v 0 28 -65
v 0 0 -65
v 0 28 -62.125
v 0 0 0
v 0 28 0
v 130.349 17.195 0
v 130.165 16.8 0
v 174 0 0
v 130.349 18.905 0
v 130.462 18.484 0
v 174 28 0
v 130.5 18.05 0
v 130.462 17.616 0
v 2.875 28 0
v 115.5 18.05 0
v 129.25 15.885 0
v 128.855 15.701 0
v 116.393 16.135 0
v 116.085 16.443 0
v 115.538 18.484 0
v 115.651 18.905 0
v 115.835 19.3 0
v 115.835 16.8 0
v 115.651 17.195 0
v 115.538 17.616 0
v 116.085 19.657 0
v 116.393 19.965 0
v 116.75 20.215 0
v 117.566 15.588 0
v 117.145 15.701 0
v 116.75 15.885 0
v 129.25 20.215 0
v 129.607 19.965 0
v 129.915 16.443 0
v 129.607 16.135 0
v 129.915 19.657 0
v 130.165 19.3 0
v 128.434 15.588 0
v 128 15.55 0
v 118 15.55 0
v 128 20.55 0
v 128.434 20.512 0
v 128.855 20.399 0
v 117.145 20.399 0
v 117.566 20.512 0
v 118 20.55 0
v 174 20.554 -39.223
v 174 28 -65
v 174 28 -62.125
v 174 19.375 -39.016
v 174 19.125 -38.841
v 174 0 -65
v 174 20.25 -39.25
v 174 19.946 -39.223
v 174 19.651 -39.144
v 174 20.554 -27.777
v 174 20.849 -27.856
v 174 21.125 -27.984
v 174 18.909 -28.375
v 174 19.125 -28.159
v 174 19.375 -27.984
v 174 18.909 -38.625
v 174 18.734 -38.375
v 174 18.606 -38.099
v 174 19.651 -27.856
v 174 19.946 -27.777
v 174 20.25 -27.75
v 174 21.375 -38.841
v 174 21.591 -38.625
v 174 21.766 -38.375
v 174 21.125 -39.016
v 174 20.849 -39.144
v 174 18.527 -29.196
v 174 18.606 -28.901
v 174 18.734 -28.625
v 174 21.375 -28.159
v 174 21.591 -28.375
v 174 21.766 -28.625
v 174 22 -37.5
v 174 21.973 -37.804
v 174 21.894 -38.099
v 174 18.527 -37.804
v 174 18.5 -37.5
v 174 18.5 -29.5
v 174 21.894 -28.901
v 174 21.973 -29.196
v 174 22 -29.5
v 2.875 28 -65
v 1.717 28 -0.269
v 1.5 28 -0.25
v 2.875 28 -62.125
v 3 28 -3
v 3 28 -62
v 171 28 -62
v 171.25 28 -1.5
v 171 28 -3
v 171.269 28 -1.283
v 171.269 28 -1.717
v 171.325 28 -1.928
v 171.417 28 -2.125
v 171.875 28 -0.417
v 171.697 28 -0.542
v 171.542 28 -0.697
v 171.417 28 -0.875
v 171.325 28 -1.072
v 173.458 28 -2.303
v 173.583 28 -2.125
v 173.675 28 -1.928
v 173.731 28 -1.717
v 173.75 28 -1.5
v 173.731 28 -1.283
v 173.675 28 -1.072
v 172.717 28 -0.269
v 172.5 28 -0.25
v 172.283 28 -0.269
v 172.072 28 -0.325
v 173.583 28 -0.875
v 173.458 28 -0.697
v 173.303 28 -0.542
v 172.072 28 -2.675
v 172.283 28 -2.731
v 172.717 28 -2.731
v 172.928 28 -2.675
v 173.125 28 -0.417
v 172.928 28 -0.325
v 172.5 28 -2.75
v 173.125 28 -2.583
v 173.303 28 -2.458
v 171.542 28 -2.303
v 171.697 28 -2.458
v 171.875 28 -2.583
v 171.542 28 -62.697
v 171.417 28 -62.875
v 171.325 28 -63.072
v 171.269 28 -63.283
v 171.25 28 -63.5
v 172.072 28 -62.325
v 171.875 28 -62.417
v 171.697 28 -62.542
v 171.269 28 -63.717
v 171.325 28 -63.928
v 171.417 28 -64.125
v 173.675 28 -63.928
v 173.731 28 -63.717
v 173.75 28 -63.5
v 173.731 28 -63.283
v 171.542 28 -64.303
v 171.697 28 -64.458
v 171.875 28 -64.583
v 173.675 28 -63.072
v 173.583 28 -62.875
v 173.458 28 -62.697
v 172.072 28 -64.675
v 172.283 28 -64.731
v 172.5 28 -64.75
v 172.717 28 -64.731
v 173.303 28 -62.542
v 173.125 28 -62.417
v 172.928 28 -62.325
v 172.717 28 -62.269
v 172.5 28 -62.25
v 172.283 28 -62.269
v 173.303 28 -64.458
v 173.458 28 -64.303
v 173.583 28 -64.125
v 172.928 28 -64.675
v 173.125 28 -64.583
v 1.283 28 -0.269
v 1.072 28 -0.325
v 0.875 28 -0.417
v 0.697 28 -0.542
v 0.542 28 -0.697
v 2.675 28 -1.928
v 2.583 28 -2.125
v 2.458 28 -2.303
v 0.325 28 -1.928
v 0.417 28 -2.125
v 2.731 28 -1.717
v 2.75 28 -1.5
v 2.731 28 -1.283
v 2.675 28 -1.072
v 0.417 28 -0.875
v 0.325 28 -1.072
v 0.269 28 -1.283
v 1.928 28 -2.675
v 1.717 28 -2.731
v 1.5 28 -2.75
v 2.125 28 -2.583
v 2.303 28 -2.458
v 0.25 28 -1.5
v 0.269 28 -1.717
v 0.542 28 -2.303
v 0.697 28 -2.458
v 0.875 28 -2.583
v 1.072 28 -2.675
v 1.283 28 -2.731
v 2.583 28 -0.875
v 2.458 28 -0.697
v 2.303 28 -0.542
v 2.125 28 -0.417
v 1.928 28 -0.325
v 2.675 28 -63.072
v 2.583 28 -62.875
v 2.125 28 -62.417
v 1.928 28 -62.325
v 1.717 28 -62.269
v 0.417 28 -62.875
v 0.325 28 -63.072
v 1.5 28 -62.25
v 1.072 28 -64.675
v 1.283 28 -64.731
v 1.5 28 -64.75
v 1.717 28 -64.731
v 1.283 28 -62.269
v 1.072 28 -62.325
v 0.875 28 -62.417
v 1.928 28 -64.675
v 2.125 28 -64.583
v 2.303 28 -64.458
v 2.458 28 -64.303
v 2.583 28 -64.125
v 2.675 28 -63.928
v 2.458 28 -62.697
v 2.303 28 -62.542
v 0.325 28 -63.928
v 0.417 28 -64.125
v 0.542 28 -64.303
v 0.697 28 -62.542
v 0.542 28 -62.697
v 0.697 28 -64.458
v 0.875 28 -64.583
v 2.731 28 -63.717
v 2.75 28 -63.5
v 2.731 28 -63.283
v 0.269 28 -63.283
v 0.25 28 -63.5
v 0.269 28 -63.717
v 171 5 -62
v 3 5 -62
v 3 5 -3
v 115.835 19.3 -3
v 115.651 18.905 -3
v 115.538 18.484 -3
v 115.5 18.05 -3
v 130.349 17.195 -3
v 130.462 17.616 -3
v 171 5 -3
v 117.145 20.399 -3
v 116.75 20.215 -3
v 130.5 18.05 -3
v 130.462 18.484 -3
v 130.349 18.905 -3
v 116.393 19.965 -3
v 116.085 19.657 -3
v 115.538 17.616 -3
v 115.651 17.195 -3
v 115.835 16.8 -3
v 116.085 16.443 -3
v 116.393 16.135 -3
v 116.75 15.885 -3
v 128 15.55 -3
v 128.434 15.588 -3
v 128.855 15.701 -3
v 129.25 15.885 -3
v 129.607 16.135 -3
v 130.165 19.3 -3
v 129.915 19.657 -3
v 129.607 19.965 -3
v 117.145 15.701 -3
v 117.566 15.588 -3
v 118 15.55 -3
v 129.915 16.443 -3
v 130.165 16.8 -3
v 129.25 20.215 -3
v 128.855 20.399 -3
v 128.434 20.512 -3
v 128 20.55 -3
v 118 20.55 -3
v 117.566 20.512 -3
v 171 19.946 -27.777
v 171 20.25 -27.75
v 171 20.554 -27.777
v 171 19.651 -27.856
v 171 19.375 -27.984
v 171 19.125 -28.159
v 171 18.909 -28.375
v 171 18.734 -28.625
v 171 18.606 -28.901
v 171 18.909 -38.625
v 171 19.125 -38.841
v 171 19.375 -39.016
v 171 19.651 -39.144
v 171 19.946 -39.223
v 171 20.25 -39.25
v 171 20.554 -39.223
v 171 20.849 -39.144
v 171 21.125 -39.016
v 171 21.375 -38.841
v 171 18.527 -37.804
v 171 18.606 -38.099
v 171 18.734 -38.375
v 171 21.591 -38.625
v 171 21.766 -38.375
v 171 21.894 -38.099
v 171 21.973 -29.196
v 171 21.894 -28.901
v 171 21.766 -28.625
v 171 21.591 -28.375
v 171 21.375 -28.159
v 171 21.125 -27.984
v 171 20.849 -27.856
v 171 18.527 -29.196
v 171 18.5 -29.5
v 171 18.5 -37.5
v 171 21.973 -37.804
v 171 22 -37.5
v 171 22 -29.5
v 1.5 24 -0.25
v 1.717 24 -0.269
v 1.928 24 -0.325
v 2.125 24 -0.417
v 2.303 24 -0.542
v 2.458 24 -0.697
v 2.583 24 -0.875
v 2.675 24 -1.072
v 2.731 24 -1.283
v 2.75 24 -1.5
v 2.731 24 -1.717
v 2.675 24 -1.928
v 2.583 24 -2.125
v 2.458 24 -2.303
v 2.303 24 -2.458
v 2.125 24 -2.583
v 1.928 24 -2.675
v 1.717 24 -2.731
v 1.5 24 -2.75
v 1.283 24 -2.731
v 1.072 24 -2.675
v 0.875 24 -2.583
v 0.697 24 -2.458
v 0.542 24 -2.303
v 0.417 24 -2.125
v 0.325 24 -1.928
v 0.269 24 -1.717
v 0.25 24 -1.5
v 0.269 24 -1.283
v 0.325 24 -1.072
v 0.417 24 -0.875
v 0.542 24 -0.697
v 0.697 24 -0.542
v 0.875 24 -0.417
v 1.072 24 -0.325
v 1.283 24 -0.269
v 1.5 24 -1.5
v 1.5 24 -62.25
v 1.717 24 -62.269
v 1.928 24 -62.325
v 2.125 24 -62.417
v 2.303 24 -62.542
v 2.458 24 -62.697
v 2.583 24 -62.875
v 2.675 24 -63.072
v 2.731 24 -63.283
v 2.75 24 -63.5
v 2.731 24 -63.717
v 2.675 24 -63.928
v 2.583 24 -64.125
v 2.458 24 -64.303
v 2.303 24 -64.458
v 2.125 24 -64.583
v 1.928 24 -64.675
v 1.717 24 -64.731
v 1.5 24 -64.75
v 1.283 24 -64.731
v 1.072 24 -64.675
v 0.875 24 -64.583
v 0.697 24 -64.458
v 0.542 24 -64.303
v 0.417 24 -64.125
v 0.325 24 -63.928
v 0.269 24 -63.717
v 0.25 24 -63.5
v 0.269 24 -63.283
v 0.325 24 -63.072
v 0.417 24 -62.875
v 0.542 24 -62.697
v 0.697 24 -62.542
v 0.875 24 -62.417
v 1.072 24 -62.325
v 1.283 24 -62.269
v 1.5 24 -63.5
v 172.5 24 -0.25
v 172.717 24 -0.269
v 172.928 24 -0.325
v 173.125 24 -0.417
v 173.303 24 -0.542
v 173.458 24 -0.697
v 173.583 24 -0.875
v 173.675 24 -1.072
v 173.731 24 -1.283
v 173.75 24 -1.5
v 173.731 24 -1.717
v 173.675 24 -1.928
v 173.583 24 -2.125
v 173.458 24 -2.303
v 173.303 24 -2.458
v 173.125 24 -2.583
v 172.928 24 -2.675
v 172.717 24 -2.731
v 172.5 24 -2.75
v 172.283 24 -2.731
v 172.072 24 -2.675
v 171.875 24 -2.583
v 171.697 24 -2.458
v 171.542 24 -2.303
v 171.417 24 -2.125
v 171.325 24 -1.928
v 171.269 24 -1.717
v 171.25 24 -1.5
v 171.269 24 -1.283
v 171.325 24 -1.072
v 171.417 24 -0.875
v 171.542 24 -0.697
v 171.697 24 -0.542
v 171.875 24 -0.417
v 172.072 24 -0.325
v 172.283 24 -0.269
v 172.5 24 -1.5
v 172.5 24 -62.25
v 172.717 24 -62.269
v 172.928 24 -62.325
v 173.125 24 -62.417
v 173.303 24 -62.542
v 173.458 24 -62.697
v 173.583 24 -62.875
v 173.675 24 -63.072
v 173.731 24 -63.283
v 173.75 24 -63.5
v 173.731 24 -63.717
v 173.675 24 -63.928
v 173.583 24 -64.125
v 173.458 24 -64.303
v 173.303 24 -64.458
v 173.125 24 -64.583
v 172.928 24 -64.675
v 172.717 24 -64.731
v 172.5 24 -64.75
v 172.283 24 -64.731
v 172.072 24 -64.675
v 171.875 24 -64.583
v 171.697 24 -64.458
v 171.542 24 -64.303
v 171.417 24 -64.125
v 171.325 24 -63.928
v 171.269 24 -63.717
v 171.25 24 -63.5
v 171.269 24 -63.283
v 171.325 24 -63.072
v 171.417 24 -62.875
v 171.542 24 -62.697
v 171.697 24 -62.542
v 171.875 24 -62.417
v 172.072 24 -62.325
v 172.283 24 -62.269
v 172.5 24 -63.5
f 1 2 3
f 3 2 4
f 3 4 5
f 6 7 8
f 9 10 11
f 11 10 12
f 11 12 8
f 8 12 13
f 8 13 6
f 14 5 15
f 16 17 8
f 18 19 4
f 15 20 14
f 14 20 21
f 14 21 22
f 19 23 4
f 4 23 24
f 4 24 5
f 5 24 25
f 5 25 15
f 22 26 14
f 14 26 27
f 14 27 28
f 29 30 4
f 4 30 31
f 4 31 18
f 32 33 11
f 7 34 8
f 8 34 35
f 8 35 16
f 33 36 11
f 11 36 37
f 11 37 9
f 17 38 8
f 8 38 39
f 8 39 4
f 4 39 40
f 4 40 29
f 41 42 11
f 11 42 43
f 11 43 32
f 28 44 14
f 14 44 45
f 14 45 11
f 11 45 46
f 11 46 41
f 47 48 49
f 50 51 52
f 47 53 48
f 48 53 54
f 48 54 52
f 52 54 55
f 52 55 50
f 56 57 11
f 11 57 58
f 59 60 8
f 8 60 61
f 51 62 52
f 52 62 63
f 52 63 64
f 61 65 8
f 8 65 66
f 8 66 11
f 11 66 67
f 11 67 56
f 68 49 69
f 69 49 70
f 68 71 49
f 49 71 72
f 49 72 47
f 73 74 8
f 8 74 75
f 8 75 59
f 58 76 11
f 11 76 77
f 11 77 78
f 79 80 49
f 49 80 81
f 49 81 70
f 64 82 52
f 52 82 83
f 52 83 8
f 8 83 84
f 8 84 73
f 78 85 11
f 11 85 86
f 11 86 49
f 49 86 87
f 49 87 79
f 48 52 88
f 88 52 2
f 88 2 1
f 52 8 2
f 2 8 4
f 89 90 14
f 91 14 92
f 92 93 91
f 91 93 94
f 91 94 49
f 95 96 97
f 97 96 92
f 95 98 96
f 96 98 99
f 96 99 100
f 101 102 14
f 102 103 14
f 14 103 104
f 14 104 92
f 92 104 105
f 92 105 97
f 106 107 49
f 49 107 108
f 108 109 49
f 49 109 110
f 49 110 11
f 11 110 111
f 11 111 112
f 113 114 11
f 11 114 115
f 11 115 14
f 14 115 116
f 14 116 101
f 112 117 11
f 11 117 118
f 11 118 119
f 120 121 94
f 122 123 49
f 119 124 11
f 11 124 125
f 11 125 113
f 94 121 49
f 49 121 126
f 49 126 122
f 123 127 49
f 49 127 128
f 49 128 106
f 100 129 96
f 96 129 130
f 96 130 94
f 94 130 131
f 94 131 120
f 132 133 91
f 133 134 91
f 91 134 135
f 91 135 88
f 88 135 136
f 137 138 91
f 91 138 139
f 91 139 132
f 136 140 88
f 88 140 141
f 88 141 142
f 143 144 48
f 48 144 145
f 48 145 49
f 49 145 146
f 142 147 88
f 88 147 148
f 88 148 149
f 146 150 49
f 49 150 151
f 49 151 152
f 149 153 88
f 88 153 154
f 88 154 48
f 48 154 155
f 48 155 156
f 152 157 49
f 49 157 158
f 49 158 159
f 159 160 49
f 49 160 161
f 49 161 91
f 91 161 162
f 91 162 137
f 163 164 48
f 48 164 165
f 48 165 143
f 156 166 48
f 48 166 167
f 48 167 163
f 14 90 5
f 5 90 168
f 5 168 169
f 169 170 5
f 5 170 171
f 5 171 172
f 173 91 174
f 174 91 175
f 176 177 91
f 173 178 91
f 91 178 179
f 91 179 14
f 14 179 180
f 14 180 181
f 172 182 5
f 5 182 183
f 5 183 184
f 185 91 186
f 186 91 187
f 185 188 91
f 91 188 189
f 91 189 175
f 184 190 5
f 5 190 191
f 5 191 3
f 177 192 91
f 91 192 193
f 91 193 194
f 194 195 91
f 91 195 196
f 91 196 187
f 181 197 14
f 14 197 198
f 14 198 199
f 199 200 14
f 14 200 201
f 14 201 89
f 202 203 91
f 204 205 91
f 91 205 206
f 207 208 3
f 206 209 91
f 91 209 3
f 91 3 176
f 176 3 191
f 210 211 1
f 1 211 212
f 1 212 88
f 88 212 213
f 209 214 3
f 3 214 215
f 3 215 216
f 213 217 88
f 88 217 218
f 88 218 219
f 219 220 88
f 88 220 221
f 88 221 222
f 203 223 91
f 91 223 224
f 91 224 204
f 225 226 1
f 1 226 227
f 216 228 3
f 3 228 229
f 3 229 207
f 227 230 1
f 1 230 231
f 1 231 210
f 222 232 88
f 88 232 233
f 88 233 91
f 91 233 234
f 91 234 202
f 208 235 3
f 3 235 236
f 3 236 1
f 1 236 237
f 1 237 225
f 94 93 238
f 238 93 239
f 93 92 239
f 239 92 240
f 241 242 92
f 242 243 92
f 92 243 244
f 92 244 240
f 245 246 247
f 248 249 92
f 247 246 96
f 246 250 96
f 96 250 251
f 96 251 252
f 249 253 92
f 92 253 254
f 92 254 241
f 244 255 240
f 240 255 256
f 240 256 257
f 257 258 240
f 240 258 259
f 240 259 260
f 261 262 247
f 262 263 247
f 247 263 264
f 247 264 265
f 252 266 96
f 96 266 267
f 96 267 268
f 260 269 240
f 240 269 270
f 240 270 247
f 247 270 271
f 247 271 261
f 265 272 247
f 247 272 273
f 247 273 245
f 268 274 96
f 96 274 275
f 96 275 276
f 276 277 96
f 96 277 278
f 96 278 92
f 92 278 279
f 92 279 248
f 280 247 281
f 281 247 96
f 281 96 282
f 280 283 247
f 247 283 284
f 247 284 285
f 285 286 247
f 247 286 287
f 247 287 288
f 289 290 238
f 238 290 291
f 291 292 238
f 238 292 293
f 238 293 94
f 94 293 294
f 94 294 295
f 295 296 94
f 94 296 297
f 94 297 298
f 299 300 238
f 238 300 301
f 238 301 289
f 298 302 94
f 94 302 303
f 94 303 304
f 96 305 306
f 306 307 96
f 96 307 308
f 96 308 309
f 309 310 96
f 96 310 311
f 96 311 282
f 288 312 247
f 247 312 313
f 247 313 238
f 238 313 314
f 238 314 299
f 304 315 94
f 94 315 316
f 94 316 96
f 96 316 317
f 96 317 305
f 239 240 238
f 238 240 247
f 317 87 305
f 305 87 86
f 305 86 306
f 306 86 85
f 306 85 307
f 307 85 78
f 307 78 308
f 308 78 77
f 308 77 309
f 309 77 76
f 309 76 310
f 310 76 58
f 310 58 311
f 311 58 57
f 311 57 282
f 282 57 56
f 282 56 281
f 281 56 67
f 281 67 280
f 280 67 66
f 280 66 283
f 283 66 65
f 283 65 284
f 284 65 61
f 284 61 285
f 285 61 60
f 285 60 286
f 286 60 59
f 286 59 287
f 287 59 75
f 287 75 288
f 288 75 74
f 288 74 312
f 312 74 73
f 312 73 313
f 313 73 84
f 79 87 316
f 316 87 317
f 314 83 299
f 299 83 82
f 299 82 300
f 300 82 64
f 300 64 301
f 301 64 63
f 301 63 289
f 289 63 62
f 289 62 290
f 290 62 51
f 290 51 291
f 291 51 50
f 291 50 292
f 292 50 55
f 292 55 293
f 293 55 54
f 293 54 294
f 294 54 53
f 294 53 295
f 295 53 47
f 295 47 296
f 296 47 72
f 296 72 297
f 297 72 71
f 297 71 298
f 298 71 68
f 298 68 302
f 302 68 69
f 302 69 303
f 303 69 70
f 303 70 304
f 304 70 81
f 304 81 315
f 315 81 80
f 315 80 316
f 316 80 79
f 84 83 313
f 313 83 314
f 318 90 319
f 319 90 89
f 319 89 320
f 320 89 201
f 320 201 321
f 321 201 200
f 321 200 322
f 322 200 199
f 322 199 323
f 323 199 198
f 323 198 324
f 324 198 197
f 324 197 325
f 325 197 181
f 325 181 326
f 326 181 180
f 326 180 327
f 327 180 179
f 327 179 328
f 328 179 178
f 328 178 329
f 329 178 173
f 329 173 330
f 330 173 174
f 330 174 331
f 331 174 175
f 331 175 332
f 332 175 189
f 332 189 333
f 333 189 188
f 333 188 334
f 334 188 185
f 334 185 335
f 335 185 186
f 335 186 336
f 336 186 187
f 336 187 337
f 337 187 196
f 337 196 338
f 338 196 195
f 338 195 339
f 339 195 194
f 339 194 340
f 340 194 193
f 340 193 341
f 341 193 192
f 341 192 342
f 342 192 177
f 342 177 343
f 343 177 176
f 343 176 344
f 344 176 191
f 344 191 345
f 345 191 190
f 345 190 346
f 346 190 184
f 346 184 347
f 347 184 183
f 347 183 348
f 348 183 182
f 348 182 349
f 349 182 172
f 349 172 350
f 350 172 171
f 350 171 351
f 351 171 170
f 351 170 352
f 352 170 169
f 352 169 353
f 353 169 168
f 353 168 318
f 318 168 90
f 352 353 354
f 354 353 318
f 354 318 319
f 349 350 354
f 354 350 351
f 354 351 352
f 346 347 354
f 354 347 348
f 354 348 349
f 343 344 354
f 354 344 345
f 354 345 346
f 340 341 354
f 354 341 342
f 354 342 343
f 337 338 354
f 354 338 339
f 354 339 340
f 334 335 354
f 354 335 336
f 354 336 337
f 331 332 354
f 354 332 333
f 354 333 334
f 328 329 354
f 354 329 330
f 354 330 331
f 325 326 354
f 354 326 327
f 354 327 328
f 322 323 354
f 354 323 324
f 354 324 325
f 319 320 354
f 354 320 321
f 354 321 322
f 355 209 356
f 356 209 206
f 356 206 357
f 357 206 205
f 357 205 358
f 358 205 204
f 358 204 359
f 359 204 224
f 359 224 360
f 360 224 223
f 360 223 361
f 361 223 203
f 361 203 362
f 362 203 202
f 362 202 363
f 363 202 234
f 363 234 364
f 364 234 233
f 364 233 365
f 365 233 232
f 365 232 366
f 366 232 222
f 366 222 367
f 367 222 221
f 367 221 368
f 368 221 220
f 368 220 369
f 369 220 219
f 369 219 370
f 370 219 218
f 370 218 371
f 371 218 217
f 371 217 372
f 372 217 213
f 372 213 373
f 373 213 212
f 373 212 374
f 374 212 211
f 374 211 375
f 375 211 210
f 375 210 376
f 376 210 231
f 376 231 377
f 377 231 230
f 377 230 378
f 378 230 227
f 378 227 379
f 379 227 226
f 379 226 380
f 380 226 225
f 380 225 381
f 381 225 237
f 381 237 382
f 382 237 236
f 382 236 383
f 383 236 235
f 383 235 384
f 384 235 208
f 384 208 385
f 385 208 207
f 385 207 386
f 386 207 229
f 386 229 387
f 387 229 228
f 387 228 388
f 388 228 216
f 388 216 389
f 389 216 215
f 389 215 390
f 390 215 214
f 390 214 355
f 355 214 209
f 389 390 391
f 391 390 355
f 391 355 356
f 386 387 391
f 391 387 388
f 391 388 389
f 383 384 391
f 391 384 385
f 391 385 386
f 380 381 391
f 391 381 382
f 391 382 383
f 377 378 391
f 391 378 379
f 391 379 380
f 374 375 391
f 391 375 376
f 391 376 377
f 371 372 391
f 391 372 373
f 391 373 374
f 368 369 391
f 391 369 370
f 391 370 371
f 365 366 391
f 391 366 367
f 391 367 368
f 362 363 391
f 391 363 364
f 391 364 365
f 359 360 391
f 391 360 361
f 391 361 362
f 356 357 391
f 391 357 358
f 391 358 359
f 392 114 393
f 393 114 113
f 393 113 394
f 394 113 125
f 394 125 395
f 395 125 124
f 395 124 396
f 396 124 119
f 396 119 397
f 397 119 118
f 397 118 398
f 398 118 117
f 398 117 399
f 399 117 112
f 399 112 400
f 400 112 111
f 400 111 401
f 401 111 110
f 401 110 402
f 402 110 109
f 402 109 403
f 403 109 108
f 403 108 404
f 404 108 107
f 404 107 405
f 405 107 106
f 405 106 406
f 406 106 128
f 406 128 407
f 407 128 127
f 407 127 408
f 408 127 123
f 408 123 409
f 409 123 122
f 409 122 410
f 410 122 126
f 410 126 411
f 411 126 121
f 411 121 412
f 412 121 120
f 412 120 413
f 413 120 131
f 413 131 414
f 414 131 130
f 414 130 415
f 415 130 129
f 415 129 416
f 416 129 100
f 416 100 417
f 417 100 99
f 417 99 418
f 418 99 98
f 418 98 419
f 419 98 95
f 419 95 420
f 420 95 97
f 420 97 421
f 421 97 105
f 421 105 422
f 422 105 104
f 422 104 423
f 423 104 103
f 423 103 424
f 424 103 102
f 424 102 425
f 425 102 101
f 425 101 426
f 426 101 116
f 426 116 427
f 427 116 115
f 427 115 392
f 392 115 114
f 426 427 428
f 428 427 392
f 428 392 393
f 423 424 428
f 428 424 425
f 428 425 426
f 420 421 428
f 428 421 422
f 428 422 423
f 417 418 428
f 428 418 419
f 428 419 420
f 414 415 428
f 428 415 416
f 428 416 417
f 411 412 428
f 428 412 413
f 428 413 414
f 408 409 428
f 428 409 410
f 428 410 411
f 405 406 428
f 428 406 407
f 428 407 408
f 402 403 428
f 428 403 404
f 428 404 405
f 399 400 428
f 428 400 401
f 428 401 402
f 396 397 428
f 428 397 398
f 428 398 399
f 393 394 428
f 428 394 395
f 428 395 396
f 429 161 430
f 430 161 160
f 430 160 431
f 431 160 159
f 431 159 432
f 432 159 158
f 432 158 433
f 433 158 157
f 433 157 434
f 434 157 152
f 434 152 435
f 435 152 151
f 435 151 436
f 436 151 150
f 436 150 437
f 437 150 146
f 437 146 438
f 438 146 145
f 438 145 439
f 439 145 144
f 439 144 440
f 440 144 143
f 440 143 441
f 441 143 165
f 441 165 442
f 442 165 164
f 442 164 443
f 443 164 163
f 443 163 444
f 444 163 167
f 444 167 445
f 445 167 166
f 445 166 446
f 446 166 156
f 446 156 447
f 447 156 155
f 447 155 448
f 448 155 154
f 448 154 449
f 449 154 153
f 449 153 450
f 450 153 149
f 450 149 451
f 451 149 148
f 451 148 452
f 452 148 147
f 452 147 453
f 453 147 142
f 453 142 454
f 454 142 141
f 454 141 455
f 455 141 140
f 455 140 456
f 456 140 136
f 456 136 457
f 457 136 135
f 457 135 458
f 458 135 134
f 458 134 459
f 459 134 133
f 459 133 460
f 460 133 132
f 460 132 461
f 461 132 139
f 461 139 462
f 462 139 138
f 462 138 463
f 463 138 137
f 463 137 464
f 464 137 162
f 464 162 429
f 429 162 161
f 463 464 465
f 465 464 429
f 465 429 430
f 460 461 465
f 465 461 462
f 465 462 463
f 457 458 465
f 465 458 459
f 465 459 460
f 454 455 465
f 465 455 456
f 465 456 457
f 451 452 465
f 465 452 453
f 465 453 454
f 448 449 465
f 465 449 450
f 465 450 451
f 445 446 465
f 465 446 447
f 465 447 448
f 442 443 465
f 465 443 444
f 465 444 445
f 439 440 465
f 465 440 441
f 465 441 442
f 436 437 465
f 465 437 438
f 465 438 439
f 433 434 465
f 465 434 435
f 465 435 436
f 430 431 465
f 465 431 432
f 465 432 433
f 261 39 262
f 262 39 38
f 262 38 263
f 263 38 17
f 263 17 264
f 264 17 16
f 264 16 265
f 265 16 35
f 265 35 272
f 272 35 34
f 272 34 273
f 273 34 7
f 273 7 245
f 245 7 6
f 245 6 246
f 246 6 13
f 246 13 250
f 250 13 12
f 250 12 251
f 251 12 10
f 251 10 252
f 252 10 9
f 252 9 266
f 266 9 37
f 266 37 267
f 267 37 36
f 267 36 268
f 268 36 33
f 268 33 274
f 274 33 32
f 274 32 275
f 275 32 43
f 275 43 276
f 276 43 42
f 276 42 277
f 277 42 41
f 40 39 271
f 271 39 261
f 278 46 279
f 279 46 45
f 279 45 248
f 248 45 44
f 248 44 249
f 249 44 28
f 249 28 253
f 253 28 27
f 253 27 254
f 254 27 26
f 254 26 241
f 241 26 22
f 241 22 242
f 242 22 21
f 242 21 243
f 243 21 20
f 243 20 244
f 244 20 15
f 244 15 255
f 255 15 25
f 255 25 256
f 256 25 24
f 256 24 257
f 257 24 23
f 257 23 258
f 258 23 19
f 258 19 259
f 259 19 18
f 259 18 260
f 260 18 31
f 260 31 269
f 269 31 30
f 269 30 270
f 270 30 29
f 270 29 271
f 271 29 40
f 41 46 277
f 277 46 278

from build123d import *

# Parameters (mm, degrees)
SKETCH1_W            = 174
SKETCH1_H            = 65
BOSS_EXTRUDE1_DEPTH  = 5
SKETCH2_W            = 174
SKETCH2_H            = 65
SKETCH2_W_2          = 168
SKETCH2_H_2          = 59
BOSS_EXTRUDE2_DEPTH  = 23
CUT_EXTRUDE2_DEPTH   = 23
SKETCH4_R            = 1.25
CUT_EXTRUDE3_DEPTH   = 4
LPATTERN2_COUNT      = 2
LPATTERN2_PITCH      = 62
LPATTERN2_COUNT_DIR2 = 2
LPATTERN2_PITCH_DIR2 = 171
CUT_EXTRUDE4_DEPTH   = 10


with BuildPart() as part:
    # Sketch1 → Boss-Extrude1 (new body)
    with BuildSketch(Plane(origin=(0, 0, 0), x_dir=(1, 0, 0), z_dir=(0, 1, 0))):
        with Locations((87, 32.5)):
            Rectangle(SKETCH1_W, SKETCH1_H)
    extrude(amount=BOSS_EXTRUDE1_DEPTH)

    # Sketch2 → Boss-Extrude2 (add)
    with BuildSketch(Plane(origin=(0, 5, 0), x_dir=(1, 0, 0), z_dir=(0, 1, 0))):
        with Locations((87, 32.5)):
            Rectangle(SKETCH2_W, SKETCH2_H)
        with Locations((87, 32.5)):
            Rectangle(SKETCH2_W_2, SKETCH2_H_2, mode=Mode.SUBTRACT)
    extrude(amount=BOSS_EXTRUDE2_DEPTH)

    # Sketch3 → Cut-Extrude2 (cut)
    with BuildSketch(Plane(origin=(174, 0, 0), x_dir=(0, 0, -1), z_dir=(1, 0, 0))):
        with BuildLine():
            Line((29.5, 22), (37.5, 22))
            ThreePointArc((37.5, 22), (39.25, 20.25), (37.5, 18.5))
            Line((37.5, 18.5), (29.5, 18.5))
            ThreePointArc((29.5, 18.5), (27.75, 20.25), (29.5, 22))
        make_face()
    extrude(amount=-CUT_EXTRUDE2_DEPTH, mode=Mode.SUBTRACT)

    # Sketch4 → Cut-Extrude3 (cut)
    with BuildSketch(Plane(origin=(0, 28, 0), x_dir=(1, 0, 0), z_dir=(0, 1, 0))):
        with Locations((1.5, 1.5)):
            Circle(SKETCH4_R)
    cut_extrude3 = extrude(amount=-CUT_EXTRUDE3_DEPTH, mode=Mode.SUBTRACT)

    # LPattern2: Cut-Extrude3 2 × 2
    with Locations(*[(j * LPATTERN2_PITCH_DIR2, 0, -i * LPATTERN2_PITCH) for i in range(LPATTERN2_COUNT) for j in range(LPATTERN2_COUNT_DIR2) if (i, j) != (0, 0)]):
        add(cut_extrude3, mode=Mode.SUBTRACT)

    # Sketch5 → Cut-Extrude4 (cut)
    with BuildSketch(Plane.XY):
        with BuildLine():
            Line((128, 15.55), (118, 15.55))
            ThreePointArc((118, 15.55), (115.5, 18.05), (118, 20.55))
            Line((118, 20.55), (128, 20.55))
            ThreePointArc((128, 20.55), (130.5, 18.05), (128, 15.55))
        make_face()
    extrude(amount=-CUT_EXTRUDE4_DEPTH, mode=Mode.SUBTRACT)


solid = part.part
